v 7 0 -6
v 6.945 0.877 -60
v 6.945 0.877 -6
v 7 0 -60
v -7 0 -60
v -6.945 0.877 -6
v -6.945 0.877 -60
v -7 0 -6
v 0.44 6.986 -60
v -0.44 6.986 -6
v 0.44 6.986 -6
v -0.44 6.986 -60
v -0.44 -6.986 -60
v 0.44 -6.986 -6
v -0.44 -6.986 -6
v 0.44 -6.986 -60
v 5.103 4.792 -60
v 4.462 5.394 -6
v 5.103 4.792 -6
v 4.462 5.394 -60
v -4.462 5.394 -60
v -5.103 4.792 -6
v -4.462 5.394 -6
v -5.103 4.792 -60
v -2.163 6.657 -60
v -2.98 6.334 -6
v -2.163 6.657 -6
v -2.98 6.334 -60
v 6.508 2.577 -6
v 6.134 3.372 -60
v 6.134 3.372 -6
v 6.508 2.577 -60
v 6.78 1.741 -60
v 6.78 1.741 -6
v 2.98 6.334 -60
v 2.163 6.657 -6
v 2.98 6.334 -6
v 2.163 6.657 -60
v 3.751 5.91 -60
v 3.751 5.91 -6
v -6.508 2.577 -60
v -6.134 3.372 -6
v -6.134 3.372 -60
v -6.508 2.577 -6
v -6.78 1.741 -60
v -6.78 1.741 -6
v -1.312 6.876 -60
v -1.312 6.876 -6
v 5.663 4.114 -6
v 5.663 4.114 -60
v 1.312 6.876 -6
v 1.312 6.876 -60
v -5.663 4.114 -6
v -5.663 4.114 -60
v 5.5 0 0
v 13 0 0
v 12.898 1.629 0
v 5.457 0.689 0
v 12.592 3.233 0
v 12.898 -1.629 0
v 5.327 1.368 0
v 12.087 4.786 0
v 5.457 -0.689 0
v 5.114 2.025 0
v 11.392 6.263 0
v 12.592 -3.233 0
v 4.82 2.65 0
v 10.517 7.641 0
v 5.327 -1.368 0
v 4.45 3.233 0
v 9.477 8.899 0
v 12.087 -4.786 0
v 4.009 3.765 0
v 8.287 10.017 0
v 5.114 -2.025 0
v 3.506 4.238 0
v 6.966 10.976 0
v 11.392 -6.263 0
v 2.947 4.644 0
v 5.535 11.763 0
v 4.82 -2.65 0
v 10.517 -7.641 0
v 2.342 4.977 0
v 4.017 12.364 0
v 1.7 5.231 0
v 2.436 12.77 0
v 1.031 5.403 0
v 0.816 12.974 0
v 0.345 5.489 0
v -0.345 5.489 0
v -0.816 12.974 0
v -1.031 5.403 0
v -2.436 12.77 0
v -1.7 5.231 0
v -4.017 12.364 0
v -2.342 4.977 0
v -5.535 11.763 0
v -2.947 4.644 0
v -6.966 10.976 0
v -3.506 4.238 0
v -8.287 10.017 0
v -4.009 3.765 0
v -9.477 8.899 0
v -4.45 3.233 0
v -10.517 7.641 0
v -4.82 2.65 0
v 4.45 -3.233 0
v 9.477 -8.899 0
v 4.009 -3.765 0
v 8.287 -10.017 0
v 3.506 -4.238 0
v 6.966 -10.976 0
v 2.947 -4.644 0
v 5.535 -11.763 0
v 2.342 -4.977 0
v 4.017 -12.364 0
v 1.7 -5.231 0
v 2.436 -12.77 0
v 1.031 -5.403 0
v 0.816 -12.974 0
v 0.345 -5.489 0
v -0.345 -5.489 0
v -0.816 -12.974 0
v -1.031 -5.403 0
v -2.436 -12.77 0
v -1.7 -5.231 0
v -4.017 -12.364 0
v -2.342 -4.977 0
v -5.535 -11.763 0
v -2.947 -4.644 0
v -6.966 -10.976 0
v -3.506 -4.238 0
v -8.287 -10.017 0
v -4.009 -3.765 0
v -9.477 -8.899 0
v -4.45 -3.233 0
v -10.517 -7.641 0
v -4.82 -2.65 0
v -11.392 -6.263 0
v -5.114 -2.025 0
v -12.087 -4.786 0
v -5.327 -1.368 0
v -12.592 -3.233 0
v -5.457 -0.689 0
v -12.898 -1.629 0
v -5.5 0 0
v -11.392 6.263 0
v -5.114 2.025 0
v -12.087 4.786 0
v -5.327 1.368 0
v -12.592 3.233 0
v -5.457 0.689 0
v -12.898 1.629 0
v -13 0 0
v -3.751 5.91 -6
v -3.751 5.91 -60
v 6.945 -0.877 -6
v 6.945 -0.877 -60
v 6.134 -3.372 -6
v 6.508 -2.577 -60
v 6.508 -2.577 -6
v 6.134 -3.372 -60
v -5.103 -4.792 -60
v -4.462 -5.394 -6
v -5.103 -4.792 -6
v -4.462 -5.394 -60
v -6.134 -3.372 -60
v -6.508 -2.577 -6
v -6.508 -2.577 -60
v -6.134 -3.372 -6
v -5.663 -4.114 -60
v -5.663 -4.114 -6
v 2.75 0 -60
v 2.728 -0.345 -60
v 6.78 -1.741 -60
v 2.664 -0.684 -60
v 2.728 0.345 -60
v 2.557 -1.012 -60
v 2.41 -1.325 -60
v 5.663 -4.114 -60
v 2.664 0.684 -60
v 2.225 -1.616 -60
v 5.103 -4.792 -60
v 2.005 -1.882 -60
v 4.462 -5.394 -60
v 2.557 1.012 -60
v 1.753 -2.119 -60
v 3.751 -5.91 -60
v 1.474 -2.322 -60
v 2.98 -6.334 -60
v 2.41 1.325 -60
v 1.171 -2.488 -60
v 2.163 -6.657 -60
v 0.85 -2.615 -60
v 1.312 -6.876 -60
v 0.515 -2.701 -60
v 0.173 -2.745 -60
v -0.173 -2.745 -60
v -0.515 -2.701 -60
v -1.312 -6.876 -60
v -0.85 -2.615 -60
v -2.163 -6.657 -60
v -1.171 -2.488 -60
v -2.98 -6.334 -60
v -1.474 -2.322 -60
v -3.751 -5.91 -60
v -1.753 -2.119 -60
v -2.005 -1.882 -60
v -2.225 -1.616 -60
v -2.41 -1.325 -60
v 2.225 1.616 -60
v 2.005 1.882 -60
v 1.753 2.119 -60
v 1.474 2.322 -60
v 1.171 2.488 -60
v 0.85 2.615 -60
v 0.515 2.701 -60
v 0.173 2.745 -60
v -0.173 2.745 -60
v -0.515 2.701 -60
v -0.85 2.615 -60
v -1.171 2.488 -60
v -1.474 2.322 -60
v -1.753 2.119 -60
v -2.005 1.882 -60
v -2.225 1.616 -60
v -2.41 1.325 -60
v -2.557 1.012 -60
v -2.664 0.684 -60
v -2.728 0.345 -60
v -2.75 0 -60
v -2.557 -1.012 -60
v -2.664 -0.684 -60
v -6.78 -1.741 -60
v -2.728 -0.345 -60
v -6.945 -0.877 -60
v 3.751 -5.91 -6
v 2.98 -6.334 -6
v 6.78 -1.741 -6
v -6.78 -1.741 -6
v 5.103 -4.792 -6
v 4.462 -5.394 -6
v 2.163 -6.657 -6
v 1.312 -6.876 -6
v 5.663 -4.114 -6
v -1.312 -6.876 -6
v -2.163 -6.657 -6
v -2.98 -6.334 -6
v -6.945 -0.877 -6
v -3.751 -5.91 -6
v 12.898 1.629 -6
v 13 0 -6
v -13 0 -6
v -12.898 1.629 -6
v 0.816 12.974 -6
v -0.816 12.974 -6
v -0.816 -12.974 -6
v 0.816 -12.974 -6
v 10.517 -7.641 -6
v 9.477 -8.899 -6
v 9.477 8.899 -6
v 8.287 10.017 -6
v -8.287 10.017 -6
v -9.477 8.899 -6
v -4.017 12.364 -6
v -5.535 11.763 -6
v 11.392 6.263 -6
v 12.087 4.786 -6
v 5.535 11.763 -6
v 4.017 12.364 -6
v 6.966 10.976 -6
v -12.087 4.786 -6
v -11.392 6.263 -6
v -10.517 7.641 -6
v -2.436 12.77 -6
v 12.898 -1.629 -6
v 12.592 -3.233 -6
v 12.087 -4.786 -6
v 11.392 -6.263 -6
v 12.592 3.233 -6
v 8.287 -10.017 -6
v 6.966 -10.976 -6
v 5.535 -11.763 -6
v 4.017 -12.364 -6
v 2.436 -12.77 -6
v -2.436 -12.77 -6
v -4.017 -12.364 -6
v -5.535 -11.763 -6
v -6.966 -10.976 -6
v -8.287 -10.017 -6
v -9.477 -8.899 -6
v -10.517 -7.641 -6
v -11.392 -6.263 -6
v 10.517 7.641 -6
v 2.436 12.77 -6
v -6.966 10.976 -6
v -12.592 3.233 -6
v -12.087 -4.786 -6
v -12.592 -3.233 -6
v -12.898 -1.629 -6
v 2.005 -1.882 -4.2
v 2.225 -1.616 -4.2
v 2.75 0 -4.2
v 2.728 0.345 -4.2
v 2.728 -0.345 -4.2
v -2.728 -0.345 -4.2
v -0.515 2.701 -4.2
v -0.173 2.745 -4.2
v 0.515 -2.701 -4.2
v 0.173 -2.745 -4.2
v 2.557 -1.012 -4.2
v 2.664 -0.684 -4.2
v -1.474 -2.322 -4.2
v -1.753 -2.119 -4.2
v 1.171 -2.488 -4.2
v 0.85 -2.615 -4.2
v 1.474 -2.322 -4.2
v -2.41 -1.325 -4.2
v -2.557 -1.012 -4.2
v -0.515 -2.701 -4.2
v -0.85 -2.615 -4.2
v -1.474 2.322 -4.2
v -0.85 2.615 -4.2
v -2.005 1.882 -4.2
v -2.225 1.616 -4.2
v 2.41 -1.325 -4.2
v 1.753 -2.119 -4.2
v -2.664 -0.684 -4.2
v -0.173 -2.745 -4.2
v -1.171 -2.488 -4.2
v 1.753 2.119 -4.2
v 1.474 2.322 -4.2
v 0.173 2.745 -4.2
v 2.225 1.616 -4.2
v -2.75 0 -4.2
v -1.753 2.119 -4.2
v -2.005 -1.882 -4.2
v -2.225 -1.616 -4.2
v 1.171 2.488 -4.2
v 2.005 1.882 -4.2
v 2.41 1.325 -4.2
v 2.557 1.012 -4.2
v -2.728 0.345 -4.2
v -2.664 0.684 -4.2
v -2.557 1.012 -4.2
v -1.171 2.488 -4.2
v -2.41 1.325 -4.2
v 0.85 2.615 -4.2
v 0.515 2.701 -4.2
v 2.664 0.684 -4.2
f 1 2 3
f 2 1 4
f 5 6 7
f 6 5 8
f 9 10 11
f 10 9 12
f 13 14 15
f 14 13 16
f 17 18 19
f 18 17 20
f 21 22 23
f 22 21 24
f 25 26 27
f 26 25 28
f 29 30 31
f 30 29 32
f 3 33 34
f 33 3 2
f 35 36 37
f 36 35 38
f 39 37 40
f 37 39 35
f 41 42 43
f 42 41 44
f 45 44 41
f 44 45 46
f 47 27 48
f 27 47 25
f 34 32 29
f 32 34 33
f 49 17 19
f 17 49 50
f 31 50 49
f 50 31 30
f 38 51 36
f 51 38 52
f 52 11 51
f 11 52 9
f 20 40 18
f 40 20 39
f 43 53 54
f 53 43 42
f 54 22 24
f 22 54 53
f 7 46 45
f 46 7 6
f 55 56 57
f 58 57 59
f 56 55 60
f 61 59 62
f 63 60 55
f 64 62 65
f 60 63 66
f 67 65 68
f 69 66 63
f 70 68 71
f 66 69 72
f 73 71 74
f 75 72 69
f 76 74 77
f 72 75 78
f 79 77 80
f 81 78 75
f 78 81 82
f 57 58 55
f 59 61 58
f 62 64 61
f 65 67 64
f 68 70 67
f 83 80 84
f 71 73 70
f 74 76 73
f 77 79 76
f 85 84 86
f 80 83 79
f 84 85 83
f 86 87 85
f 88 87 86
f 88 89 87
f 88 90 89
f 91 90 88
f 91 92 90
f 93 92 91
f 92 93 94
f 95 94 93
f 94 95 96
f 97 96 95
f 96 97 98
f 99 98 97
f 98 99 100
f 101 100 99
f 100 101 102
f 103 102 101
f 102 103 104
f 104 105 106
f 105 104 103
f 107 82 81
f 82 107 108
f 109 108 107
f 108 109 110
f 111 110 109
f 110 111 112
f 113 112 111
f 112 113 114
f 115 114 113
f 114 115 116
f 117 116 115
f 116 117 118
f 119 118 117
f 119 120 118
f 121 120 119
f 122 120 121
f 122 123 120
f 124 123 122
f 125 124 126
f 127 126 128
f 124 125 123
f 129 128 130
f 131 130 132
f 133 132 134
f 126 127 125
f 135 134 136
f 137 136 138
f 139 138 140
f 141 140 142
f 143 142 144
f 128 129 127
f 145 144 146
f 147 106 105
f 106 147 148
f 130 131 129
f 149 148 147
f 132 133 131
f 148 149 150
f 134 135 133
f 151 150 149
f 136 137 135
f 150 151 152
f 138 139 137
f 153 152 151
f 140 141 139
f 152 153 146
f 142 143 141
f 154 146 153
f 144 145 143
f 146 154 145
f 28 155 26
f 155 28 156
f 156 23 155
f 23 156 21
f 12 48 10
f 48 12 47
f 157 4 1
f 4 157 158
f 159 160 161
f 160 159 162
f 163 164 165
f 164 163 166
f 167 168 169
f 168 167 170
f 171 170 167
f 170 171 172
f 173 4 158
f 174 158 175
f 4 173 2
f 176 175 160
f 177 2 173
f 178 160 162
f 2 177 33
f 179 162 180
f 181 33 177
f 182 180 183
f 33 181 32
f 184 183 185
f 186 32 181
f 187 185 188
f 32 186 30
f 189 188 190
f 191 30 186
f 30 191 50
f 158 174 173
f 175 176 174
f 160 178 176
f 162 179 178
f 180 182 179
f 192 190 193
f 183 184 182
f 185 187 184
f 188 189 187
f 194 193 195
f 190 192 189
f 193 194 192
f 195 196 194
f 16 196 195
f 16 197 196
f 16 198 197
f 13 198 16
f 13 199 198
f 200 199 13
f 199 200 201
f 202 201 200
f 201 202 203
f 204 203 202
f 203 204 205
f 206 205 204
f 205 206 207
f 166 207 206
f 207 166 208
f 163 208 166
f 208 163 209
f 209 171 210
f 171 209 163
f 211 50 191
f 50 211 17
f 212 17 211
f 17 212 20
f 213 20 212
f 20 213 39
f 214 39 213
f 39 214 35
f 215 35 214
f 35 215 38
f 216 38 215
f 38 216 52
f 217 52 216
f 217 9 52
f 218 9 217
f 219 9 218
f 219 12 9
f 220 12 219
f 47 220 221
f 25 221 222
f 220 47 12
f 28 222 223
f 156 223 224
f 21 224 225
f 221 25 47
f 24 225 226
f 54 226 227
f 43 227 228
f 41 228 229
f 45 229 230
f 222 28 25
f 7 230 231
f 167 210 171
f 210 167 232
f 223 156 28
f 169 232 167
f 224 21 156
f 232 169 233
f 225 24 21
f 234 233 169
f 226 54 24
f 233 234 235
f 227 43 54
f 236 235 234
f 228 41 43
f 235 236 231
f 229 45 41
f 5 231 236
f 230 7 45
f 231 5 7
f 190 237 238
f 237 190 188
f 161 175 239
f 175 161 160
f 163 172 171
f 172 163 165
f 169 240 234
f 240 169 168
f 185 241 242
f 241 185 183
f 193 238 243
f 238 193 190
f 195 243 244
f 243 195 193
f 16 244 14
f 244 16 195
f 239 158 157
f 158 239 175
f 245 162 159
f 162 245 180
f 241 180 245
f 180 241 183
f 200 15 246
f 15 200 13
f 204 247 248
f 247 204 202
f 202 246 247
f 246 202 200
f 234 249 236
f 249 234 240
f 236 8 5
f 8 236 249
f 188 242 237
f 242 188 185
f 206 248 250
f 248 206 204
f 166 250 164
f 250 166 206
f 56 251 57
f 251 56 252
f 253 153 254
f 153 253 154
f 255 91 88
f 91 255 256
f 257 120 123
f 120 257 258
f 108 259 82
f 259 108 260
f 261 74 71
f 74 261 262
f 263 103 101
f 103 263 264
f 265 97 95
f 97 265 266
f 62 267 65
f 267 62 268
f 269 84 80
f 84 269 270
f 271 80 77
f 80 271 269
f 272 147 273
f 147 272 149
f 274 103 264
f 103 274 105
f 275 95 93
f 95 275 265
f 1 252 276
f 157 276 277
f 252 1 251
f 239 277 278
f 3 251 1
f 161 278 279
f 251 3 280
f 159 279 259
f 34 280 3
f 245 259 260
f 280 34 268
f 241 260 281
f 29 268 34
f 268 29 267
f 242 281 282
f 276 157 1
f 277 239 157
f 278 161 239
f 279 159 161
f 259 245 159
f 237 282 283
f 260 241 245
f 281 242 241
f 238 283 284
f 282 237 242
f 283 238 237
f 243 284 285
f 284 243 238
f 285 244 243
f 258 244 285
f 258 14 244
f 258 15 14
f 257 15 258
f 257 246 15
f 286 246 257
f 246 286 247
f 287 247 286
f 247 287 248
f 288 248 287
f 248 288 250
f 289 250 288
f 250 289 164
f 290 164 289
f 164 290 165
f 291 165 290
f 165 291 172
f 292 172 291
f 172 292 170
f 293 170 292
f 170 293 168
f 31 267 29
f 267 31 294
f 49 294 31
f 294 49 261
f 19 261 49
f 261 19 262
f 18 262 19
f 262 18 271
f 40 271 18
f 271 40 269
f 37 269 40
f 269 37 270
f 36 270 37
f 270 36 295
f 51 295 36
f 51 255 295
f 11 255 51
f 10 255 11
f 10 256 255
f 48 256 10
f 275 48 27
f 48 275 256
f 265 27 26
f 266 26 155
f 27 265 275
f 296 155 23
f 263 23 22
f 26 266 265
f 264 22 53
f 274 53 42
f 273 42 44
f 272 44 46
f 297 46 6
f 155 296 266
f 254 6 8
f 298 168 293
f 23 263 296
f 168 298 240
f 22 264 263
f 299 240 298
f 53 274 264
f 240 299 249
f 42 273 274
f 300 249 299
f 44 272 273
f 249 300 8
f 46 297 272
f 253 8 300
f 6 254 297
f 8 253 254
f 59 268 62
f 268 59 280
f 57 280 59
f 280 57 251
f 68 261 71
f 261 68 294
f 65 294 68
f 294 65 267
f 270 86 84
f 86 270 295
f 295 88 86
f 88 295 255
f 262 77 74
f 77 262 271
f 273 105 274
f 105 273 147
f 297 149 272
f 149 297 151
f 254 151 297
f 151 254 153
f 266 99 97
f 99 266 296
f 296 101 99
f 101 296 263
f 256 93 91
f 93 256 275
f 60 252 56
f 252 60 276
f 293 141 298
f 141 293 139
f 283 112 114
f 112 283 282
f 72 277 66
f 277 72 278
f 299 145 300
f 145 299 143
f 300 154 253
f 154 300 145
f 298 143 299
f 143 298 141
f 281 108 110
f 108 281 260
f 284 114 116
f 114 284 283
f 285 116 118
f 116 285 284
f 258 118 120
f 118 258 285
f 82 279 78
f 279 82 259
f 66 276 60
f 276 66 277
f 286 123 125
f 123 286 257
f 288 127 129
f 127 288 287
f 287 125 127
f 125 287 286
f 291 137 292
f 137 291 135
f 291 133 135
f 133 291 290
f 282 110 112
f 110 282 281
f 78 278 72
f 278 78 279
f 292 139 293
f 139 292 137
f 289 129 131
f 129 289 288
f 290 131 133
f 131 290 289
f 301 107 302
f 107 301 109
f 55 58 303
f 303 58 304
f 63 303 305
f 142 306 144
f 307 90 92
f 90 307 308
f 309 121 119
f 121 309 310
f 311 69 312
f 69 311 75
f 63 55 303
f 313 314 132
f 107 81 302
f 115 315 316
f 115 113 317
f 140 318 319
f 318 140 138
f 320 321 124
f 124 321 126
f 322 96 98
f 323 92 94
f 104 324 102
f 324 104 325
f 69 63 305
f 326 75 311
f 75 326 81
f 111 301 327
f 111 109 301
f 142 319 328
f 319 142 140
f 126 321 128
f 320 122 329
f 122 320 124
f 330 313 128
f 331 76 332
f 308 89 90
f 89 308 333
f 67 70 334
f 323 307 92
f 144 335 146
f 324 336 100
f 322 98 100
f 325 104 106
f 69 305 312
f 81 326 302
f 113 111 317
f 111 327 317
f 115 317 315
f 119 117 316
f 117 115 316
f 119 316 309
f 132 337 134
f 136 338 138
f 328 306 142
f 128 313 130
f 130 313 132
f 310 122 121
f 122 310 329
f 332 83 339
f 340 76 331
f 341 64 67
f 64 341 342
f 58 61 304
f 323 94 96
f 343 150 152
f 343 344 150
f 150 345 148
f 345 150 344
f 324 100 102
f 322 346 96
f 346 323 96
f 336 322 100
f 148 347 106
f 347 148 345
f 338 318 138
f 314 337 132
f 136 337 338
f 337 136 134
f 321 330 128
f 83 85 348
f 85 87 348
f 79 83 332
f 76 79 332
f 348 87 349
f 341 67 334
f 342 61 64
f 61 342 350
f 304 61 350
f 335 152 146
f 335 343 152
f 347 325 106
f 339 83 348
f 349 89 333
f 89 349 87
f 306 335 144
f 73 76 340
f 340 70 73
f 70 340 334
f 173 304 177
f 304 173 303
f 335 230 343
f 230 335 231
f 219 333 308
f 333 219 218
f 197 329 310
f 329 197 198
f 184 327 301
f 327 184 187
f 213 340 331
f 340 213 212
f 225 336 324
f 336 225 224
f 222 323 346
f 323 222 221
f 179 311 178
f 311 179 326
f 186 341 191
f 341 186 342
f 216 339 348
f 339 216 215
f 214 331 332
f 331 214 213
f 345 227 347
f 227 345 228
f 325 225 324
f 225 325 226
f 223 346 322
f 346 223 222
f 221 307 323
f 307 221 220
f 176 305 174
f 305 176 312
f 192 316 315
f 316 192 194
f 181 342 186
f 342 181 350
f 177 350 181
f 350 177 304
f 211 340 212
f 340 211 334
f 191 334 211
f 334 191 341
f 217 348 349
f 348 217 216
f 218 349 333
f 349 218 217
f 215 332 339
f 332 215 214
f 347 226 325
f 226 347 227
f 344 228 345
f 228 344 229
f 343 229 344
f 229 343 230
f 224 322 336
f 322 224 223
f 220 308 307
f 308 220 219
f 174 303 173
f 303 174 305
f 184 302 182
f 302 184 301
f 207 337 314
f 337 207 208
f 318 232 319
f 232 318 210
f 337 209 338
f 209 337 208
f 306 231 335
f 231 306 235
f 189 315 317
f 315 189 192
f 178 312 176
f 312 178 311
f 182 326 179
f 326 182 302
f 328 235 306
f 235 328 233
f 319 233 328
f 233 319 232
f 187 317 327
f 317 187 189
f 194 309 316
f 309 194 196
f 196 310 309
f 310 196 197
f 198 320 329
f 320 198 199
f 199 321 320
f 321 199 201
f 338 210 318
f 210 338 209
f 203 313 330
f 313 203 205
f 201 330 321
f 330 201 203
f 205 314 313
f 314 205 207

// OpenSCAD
$fn = 50;


difference() {
	union() {
		translate(v = [0, 0, -60.0000000000]) {
			cylinder(h = 60, r = 7.0000000000);
		}
		translate(v = [0, 0, -6.0000000000]) {
			cylinder(h = 6, r = 13.0000000000);
		}
	}
	union() {
		translate(v = [0, 0, 0]) {
			rotate(a = [0, 0, 0]) {
				difference() {
					union() {
						#translate(v = [0, 0, -60.0000000000]) {
							cylinder(h = 60, r = 2.2500000000);
						}
						#translate(v = [0, 0, -4.2000000000]) {
							cylinder(h = 4.2000000000, r = 7.0000000000, r1 = 2.7500000000, r2 = 5.5000000000);
						}
						#translate(v = [0, 0, -60.0000000000]) {
							cylinder(h = 60, r = 2.7500000000);
						}
						#translate(v = [0, 0, -60.0000000000]) {
							cylinder(h = 60, r = 2.2500000000);
						}
					}
					union();
				}
			}
		}
	}
}
